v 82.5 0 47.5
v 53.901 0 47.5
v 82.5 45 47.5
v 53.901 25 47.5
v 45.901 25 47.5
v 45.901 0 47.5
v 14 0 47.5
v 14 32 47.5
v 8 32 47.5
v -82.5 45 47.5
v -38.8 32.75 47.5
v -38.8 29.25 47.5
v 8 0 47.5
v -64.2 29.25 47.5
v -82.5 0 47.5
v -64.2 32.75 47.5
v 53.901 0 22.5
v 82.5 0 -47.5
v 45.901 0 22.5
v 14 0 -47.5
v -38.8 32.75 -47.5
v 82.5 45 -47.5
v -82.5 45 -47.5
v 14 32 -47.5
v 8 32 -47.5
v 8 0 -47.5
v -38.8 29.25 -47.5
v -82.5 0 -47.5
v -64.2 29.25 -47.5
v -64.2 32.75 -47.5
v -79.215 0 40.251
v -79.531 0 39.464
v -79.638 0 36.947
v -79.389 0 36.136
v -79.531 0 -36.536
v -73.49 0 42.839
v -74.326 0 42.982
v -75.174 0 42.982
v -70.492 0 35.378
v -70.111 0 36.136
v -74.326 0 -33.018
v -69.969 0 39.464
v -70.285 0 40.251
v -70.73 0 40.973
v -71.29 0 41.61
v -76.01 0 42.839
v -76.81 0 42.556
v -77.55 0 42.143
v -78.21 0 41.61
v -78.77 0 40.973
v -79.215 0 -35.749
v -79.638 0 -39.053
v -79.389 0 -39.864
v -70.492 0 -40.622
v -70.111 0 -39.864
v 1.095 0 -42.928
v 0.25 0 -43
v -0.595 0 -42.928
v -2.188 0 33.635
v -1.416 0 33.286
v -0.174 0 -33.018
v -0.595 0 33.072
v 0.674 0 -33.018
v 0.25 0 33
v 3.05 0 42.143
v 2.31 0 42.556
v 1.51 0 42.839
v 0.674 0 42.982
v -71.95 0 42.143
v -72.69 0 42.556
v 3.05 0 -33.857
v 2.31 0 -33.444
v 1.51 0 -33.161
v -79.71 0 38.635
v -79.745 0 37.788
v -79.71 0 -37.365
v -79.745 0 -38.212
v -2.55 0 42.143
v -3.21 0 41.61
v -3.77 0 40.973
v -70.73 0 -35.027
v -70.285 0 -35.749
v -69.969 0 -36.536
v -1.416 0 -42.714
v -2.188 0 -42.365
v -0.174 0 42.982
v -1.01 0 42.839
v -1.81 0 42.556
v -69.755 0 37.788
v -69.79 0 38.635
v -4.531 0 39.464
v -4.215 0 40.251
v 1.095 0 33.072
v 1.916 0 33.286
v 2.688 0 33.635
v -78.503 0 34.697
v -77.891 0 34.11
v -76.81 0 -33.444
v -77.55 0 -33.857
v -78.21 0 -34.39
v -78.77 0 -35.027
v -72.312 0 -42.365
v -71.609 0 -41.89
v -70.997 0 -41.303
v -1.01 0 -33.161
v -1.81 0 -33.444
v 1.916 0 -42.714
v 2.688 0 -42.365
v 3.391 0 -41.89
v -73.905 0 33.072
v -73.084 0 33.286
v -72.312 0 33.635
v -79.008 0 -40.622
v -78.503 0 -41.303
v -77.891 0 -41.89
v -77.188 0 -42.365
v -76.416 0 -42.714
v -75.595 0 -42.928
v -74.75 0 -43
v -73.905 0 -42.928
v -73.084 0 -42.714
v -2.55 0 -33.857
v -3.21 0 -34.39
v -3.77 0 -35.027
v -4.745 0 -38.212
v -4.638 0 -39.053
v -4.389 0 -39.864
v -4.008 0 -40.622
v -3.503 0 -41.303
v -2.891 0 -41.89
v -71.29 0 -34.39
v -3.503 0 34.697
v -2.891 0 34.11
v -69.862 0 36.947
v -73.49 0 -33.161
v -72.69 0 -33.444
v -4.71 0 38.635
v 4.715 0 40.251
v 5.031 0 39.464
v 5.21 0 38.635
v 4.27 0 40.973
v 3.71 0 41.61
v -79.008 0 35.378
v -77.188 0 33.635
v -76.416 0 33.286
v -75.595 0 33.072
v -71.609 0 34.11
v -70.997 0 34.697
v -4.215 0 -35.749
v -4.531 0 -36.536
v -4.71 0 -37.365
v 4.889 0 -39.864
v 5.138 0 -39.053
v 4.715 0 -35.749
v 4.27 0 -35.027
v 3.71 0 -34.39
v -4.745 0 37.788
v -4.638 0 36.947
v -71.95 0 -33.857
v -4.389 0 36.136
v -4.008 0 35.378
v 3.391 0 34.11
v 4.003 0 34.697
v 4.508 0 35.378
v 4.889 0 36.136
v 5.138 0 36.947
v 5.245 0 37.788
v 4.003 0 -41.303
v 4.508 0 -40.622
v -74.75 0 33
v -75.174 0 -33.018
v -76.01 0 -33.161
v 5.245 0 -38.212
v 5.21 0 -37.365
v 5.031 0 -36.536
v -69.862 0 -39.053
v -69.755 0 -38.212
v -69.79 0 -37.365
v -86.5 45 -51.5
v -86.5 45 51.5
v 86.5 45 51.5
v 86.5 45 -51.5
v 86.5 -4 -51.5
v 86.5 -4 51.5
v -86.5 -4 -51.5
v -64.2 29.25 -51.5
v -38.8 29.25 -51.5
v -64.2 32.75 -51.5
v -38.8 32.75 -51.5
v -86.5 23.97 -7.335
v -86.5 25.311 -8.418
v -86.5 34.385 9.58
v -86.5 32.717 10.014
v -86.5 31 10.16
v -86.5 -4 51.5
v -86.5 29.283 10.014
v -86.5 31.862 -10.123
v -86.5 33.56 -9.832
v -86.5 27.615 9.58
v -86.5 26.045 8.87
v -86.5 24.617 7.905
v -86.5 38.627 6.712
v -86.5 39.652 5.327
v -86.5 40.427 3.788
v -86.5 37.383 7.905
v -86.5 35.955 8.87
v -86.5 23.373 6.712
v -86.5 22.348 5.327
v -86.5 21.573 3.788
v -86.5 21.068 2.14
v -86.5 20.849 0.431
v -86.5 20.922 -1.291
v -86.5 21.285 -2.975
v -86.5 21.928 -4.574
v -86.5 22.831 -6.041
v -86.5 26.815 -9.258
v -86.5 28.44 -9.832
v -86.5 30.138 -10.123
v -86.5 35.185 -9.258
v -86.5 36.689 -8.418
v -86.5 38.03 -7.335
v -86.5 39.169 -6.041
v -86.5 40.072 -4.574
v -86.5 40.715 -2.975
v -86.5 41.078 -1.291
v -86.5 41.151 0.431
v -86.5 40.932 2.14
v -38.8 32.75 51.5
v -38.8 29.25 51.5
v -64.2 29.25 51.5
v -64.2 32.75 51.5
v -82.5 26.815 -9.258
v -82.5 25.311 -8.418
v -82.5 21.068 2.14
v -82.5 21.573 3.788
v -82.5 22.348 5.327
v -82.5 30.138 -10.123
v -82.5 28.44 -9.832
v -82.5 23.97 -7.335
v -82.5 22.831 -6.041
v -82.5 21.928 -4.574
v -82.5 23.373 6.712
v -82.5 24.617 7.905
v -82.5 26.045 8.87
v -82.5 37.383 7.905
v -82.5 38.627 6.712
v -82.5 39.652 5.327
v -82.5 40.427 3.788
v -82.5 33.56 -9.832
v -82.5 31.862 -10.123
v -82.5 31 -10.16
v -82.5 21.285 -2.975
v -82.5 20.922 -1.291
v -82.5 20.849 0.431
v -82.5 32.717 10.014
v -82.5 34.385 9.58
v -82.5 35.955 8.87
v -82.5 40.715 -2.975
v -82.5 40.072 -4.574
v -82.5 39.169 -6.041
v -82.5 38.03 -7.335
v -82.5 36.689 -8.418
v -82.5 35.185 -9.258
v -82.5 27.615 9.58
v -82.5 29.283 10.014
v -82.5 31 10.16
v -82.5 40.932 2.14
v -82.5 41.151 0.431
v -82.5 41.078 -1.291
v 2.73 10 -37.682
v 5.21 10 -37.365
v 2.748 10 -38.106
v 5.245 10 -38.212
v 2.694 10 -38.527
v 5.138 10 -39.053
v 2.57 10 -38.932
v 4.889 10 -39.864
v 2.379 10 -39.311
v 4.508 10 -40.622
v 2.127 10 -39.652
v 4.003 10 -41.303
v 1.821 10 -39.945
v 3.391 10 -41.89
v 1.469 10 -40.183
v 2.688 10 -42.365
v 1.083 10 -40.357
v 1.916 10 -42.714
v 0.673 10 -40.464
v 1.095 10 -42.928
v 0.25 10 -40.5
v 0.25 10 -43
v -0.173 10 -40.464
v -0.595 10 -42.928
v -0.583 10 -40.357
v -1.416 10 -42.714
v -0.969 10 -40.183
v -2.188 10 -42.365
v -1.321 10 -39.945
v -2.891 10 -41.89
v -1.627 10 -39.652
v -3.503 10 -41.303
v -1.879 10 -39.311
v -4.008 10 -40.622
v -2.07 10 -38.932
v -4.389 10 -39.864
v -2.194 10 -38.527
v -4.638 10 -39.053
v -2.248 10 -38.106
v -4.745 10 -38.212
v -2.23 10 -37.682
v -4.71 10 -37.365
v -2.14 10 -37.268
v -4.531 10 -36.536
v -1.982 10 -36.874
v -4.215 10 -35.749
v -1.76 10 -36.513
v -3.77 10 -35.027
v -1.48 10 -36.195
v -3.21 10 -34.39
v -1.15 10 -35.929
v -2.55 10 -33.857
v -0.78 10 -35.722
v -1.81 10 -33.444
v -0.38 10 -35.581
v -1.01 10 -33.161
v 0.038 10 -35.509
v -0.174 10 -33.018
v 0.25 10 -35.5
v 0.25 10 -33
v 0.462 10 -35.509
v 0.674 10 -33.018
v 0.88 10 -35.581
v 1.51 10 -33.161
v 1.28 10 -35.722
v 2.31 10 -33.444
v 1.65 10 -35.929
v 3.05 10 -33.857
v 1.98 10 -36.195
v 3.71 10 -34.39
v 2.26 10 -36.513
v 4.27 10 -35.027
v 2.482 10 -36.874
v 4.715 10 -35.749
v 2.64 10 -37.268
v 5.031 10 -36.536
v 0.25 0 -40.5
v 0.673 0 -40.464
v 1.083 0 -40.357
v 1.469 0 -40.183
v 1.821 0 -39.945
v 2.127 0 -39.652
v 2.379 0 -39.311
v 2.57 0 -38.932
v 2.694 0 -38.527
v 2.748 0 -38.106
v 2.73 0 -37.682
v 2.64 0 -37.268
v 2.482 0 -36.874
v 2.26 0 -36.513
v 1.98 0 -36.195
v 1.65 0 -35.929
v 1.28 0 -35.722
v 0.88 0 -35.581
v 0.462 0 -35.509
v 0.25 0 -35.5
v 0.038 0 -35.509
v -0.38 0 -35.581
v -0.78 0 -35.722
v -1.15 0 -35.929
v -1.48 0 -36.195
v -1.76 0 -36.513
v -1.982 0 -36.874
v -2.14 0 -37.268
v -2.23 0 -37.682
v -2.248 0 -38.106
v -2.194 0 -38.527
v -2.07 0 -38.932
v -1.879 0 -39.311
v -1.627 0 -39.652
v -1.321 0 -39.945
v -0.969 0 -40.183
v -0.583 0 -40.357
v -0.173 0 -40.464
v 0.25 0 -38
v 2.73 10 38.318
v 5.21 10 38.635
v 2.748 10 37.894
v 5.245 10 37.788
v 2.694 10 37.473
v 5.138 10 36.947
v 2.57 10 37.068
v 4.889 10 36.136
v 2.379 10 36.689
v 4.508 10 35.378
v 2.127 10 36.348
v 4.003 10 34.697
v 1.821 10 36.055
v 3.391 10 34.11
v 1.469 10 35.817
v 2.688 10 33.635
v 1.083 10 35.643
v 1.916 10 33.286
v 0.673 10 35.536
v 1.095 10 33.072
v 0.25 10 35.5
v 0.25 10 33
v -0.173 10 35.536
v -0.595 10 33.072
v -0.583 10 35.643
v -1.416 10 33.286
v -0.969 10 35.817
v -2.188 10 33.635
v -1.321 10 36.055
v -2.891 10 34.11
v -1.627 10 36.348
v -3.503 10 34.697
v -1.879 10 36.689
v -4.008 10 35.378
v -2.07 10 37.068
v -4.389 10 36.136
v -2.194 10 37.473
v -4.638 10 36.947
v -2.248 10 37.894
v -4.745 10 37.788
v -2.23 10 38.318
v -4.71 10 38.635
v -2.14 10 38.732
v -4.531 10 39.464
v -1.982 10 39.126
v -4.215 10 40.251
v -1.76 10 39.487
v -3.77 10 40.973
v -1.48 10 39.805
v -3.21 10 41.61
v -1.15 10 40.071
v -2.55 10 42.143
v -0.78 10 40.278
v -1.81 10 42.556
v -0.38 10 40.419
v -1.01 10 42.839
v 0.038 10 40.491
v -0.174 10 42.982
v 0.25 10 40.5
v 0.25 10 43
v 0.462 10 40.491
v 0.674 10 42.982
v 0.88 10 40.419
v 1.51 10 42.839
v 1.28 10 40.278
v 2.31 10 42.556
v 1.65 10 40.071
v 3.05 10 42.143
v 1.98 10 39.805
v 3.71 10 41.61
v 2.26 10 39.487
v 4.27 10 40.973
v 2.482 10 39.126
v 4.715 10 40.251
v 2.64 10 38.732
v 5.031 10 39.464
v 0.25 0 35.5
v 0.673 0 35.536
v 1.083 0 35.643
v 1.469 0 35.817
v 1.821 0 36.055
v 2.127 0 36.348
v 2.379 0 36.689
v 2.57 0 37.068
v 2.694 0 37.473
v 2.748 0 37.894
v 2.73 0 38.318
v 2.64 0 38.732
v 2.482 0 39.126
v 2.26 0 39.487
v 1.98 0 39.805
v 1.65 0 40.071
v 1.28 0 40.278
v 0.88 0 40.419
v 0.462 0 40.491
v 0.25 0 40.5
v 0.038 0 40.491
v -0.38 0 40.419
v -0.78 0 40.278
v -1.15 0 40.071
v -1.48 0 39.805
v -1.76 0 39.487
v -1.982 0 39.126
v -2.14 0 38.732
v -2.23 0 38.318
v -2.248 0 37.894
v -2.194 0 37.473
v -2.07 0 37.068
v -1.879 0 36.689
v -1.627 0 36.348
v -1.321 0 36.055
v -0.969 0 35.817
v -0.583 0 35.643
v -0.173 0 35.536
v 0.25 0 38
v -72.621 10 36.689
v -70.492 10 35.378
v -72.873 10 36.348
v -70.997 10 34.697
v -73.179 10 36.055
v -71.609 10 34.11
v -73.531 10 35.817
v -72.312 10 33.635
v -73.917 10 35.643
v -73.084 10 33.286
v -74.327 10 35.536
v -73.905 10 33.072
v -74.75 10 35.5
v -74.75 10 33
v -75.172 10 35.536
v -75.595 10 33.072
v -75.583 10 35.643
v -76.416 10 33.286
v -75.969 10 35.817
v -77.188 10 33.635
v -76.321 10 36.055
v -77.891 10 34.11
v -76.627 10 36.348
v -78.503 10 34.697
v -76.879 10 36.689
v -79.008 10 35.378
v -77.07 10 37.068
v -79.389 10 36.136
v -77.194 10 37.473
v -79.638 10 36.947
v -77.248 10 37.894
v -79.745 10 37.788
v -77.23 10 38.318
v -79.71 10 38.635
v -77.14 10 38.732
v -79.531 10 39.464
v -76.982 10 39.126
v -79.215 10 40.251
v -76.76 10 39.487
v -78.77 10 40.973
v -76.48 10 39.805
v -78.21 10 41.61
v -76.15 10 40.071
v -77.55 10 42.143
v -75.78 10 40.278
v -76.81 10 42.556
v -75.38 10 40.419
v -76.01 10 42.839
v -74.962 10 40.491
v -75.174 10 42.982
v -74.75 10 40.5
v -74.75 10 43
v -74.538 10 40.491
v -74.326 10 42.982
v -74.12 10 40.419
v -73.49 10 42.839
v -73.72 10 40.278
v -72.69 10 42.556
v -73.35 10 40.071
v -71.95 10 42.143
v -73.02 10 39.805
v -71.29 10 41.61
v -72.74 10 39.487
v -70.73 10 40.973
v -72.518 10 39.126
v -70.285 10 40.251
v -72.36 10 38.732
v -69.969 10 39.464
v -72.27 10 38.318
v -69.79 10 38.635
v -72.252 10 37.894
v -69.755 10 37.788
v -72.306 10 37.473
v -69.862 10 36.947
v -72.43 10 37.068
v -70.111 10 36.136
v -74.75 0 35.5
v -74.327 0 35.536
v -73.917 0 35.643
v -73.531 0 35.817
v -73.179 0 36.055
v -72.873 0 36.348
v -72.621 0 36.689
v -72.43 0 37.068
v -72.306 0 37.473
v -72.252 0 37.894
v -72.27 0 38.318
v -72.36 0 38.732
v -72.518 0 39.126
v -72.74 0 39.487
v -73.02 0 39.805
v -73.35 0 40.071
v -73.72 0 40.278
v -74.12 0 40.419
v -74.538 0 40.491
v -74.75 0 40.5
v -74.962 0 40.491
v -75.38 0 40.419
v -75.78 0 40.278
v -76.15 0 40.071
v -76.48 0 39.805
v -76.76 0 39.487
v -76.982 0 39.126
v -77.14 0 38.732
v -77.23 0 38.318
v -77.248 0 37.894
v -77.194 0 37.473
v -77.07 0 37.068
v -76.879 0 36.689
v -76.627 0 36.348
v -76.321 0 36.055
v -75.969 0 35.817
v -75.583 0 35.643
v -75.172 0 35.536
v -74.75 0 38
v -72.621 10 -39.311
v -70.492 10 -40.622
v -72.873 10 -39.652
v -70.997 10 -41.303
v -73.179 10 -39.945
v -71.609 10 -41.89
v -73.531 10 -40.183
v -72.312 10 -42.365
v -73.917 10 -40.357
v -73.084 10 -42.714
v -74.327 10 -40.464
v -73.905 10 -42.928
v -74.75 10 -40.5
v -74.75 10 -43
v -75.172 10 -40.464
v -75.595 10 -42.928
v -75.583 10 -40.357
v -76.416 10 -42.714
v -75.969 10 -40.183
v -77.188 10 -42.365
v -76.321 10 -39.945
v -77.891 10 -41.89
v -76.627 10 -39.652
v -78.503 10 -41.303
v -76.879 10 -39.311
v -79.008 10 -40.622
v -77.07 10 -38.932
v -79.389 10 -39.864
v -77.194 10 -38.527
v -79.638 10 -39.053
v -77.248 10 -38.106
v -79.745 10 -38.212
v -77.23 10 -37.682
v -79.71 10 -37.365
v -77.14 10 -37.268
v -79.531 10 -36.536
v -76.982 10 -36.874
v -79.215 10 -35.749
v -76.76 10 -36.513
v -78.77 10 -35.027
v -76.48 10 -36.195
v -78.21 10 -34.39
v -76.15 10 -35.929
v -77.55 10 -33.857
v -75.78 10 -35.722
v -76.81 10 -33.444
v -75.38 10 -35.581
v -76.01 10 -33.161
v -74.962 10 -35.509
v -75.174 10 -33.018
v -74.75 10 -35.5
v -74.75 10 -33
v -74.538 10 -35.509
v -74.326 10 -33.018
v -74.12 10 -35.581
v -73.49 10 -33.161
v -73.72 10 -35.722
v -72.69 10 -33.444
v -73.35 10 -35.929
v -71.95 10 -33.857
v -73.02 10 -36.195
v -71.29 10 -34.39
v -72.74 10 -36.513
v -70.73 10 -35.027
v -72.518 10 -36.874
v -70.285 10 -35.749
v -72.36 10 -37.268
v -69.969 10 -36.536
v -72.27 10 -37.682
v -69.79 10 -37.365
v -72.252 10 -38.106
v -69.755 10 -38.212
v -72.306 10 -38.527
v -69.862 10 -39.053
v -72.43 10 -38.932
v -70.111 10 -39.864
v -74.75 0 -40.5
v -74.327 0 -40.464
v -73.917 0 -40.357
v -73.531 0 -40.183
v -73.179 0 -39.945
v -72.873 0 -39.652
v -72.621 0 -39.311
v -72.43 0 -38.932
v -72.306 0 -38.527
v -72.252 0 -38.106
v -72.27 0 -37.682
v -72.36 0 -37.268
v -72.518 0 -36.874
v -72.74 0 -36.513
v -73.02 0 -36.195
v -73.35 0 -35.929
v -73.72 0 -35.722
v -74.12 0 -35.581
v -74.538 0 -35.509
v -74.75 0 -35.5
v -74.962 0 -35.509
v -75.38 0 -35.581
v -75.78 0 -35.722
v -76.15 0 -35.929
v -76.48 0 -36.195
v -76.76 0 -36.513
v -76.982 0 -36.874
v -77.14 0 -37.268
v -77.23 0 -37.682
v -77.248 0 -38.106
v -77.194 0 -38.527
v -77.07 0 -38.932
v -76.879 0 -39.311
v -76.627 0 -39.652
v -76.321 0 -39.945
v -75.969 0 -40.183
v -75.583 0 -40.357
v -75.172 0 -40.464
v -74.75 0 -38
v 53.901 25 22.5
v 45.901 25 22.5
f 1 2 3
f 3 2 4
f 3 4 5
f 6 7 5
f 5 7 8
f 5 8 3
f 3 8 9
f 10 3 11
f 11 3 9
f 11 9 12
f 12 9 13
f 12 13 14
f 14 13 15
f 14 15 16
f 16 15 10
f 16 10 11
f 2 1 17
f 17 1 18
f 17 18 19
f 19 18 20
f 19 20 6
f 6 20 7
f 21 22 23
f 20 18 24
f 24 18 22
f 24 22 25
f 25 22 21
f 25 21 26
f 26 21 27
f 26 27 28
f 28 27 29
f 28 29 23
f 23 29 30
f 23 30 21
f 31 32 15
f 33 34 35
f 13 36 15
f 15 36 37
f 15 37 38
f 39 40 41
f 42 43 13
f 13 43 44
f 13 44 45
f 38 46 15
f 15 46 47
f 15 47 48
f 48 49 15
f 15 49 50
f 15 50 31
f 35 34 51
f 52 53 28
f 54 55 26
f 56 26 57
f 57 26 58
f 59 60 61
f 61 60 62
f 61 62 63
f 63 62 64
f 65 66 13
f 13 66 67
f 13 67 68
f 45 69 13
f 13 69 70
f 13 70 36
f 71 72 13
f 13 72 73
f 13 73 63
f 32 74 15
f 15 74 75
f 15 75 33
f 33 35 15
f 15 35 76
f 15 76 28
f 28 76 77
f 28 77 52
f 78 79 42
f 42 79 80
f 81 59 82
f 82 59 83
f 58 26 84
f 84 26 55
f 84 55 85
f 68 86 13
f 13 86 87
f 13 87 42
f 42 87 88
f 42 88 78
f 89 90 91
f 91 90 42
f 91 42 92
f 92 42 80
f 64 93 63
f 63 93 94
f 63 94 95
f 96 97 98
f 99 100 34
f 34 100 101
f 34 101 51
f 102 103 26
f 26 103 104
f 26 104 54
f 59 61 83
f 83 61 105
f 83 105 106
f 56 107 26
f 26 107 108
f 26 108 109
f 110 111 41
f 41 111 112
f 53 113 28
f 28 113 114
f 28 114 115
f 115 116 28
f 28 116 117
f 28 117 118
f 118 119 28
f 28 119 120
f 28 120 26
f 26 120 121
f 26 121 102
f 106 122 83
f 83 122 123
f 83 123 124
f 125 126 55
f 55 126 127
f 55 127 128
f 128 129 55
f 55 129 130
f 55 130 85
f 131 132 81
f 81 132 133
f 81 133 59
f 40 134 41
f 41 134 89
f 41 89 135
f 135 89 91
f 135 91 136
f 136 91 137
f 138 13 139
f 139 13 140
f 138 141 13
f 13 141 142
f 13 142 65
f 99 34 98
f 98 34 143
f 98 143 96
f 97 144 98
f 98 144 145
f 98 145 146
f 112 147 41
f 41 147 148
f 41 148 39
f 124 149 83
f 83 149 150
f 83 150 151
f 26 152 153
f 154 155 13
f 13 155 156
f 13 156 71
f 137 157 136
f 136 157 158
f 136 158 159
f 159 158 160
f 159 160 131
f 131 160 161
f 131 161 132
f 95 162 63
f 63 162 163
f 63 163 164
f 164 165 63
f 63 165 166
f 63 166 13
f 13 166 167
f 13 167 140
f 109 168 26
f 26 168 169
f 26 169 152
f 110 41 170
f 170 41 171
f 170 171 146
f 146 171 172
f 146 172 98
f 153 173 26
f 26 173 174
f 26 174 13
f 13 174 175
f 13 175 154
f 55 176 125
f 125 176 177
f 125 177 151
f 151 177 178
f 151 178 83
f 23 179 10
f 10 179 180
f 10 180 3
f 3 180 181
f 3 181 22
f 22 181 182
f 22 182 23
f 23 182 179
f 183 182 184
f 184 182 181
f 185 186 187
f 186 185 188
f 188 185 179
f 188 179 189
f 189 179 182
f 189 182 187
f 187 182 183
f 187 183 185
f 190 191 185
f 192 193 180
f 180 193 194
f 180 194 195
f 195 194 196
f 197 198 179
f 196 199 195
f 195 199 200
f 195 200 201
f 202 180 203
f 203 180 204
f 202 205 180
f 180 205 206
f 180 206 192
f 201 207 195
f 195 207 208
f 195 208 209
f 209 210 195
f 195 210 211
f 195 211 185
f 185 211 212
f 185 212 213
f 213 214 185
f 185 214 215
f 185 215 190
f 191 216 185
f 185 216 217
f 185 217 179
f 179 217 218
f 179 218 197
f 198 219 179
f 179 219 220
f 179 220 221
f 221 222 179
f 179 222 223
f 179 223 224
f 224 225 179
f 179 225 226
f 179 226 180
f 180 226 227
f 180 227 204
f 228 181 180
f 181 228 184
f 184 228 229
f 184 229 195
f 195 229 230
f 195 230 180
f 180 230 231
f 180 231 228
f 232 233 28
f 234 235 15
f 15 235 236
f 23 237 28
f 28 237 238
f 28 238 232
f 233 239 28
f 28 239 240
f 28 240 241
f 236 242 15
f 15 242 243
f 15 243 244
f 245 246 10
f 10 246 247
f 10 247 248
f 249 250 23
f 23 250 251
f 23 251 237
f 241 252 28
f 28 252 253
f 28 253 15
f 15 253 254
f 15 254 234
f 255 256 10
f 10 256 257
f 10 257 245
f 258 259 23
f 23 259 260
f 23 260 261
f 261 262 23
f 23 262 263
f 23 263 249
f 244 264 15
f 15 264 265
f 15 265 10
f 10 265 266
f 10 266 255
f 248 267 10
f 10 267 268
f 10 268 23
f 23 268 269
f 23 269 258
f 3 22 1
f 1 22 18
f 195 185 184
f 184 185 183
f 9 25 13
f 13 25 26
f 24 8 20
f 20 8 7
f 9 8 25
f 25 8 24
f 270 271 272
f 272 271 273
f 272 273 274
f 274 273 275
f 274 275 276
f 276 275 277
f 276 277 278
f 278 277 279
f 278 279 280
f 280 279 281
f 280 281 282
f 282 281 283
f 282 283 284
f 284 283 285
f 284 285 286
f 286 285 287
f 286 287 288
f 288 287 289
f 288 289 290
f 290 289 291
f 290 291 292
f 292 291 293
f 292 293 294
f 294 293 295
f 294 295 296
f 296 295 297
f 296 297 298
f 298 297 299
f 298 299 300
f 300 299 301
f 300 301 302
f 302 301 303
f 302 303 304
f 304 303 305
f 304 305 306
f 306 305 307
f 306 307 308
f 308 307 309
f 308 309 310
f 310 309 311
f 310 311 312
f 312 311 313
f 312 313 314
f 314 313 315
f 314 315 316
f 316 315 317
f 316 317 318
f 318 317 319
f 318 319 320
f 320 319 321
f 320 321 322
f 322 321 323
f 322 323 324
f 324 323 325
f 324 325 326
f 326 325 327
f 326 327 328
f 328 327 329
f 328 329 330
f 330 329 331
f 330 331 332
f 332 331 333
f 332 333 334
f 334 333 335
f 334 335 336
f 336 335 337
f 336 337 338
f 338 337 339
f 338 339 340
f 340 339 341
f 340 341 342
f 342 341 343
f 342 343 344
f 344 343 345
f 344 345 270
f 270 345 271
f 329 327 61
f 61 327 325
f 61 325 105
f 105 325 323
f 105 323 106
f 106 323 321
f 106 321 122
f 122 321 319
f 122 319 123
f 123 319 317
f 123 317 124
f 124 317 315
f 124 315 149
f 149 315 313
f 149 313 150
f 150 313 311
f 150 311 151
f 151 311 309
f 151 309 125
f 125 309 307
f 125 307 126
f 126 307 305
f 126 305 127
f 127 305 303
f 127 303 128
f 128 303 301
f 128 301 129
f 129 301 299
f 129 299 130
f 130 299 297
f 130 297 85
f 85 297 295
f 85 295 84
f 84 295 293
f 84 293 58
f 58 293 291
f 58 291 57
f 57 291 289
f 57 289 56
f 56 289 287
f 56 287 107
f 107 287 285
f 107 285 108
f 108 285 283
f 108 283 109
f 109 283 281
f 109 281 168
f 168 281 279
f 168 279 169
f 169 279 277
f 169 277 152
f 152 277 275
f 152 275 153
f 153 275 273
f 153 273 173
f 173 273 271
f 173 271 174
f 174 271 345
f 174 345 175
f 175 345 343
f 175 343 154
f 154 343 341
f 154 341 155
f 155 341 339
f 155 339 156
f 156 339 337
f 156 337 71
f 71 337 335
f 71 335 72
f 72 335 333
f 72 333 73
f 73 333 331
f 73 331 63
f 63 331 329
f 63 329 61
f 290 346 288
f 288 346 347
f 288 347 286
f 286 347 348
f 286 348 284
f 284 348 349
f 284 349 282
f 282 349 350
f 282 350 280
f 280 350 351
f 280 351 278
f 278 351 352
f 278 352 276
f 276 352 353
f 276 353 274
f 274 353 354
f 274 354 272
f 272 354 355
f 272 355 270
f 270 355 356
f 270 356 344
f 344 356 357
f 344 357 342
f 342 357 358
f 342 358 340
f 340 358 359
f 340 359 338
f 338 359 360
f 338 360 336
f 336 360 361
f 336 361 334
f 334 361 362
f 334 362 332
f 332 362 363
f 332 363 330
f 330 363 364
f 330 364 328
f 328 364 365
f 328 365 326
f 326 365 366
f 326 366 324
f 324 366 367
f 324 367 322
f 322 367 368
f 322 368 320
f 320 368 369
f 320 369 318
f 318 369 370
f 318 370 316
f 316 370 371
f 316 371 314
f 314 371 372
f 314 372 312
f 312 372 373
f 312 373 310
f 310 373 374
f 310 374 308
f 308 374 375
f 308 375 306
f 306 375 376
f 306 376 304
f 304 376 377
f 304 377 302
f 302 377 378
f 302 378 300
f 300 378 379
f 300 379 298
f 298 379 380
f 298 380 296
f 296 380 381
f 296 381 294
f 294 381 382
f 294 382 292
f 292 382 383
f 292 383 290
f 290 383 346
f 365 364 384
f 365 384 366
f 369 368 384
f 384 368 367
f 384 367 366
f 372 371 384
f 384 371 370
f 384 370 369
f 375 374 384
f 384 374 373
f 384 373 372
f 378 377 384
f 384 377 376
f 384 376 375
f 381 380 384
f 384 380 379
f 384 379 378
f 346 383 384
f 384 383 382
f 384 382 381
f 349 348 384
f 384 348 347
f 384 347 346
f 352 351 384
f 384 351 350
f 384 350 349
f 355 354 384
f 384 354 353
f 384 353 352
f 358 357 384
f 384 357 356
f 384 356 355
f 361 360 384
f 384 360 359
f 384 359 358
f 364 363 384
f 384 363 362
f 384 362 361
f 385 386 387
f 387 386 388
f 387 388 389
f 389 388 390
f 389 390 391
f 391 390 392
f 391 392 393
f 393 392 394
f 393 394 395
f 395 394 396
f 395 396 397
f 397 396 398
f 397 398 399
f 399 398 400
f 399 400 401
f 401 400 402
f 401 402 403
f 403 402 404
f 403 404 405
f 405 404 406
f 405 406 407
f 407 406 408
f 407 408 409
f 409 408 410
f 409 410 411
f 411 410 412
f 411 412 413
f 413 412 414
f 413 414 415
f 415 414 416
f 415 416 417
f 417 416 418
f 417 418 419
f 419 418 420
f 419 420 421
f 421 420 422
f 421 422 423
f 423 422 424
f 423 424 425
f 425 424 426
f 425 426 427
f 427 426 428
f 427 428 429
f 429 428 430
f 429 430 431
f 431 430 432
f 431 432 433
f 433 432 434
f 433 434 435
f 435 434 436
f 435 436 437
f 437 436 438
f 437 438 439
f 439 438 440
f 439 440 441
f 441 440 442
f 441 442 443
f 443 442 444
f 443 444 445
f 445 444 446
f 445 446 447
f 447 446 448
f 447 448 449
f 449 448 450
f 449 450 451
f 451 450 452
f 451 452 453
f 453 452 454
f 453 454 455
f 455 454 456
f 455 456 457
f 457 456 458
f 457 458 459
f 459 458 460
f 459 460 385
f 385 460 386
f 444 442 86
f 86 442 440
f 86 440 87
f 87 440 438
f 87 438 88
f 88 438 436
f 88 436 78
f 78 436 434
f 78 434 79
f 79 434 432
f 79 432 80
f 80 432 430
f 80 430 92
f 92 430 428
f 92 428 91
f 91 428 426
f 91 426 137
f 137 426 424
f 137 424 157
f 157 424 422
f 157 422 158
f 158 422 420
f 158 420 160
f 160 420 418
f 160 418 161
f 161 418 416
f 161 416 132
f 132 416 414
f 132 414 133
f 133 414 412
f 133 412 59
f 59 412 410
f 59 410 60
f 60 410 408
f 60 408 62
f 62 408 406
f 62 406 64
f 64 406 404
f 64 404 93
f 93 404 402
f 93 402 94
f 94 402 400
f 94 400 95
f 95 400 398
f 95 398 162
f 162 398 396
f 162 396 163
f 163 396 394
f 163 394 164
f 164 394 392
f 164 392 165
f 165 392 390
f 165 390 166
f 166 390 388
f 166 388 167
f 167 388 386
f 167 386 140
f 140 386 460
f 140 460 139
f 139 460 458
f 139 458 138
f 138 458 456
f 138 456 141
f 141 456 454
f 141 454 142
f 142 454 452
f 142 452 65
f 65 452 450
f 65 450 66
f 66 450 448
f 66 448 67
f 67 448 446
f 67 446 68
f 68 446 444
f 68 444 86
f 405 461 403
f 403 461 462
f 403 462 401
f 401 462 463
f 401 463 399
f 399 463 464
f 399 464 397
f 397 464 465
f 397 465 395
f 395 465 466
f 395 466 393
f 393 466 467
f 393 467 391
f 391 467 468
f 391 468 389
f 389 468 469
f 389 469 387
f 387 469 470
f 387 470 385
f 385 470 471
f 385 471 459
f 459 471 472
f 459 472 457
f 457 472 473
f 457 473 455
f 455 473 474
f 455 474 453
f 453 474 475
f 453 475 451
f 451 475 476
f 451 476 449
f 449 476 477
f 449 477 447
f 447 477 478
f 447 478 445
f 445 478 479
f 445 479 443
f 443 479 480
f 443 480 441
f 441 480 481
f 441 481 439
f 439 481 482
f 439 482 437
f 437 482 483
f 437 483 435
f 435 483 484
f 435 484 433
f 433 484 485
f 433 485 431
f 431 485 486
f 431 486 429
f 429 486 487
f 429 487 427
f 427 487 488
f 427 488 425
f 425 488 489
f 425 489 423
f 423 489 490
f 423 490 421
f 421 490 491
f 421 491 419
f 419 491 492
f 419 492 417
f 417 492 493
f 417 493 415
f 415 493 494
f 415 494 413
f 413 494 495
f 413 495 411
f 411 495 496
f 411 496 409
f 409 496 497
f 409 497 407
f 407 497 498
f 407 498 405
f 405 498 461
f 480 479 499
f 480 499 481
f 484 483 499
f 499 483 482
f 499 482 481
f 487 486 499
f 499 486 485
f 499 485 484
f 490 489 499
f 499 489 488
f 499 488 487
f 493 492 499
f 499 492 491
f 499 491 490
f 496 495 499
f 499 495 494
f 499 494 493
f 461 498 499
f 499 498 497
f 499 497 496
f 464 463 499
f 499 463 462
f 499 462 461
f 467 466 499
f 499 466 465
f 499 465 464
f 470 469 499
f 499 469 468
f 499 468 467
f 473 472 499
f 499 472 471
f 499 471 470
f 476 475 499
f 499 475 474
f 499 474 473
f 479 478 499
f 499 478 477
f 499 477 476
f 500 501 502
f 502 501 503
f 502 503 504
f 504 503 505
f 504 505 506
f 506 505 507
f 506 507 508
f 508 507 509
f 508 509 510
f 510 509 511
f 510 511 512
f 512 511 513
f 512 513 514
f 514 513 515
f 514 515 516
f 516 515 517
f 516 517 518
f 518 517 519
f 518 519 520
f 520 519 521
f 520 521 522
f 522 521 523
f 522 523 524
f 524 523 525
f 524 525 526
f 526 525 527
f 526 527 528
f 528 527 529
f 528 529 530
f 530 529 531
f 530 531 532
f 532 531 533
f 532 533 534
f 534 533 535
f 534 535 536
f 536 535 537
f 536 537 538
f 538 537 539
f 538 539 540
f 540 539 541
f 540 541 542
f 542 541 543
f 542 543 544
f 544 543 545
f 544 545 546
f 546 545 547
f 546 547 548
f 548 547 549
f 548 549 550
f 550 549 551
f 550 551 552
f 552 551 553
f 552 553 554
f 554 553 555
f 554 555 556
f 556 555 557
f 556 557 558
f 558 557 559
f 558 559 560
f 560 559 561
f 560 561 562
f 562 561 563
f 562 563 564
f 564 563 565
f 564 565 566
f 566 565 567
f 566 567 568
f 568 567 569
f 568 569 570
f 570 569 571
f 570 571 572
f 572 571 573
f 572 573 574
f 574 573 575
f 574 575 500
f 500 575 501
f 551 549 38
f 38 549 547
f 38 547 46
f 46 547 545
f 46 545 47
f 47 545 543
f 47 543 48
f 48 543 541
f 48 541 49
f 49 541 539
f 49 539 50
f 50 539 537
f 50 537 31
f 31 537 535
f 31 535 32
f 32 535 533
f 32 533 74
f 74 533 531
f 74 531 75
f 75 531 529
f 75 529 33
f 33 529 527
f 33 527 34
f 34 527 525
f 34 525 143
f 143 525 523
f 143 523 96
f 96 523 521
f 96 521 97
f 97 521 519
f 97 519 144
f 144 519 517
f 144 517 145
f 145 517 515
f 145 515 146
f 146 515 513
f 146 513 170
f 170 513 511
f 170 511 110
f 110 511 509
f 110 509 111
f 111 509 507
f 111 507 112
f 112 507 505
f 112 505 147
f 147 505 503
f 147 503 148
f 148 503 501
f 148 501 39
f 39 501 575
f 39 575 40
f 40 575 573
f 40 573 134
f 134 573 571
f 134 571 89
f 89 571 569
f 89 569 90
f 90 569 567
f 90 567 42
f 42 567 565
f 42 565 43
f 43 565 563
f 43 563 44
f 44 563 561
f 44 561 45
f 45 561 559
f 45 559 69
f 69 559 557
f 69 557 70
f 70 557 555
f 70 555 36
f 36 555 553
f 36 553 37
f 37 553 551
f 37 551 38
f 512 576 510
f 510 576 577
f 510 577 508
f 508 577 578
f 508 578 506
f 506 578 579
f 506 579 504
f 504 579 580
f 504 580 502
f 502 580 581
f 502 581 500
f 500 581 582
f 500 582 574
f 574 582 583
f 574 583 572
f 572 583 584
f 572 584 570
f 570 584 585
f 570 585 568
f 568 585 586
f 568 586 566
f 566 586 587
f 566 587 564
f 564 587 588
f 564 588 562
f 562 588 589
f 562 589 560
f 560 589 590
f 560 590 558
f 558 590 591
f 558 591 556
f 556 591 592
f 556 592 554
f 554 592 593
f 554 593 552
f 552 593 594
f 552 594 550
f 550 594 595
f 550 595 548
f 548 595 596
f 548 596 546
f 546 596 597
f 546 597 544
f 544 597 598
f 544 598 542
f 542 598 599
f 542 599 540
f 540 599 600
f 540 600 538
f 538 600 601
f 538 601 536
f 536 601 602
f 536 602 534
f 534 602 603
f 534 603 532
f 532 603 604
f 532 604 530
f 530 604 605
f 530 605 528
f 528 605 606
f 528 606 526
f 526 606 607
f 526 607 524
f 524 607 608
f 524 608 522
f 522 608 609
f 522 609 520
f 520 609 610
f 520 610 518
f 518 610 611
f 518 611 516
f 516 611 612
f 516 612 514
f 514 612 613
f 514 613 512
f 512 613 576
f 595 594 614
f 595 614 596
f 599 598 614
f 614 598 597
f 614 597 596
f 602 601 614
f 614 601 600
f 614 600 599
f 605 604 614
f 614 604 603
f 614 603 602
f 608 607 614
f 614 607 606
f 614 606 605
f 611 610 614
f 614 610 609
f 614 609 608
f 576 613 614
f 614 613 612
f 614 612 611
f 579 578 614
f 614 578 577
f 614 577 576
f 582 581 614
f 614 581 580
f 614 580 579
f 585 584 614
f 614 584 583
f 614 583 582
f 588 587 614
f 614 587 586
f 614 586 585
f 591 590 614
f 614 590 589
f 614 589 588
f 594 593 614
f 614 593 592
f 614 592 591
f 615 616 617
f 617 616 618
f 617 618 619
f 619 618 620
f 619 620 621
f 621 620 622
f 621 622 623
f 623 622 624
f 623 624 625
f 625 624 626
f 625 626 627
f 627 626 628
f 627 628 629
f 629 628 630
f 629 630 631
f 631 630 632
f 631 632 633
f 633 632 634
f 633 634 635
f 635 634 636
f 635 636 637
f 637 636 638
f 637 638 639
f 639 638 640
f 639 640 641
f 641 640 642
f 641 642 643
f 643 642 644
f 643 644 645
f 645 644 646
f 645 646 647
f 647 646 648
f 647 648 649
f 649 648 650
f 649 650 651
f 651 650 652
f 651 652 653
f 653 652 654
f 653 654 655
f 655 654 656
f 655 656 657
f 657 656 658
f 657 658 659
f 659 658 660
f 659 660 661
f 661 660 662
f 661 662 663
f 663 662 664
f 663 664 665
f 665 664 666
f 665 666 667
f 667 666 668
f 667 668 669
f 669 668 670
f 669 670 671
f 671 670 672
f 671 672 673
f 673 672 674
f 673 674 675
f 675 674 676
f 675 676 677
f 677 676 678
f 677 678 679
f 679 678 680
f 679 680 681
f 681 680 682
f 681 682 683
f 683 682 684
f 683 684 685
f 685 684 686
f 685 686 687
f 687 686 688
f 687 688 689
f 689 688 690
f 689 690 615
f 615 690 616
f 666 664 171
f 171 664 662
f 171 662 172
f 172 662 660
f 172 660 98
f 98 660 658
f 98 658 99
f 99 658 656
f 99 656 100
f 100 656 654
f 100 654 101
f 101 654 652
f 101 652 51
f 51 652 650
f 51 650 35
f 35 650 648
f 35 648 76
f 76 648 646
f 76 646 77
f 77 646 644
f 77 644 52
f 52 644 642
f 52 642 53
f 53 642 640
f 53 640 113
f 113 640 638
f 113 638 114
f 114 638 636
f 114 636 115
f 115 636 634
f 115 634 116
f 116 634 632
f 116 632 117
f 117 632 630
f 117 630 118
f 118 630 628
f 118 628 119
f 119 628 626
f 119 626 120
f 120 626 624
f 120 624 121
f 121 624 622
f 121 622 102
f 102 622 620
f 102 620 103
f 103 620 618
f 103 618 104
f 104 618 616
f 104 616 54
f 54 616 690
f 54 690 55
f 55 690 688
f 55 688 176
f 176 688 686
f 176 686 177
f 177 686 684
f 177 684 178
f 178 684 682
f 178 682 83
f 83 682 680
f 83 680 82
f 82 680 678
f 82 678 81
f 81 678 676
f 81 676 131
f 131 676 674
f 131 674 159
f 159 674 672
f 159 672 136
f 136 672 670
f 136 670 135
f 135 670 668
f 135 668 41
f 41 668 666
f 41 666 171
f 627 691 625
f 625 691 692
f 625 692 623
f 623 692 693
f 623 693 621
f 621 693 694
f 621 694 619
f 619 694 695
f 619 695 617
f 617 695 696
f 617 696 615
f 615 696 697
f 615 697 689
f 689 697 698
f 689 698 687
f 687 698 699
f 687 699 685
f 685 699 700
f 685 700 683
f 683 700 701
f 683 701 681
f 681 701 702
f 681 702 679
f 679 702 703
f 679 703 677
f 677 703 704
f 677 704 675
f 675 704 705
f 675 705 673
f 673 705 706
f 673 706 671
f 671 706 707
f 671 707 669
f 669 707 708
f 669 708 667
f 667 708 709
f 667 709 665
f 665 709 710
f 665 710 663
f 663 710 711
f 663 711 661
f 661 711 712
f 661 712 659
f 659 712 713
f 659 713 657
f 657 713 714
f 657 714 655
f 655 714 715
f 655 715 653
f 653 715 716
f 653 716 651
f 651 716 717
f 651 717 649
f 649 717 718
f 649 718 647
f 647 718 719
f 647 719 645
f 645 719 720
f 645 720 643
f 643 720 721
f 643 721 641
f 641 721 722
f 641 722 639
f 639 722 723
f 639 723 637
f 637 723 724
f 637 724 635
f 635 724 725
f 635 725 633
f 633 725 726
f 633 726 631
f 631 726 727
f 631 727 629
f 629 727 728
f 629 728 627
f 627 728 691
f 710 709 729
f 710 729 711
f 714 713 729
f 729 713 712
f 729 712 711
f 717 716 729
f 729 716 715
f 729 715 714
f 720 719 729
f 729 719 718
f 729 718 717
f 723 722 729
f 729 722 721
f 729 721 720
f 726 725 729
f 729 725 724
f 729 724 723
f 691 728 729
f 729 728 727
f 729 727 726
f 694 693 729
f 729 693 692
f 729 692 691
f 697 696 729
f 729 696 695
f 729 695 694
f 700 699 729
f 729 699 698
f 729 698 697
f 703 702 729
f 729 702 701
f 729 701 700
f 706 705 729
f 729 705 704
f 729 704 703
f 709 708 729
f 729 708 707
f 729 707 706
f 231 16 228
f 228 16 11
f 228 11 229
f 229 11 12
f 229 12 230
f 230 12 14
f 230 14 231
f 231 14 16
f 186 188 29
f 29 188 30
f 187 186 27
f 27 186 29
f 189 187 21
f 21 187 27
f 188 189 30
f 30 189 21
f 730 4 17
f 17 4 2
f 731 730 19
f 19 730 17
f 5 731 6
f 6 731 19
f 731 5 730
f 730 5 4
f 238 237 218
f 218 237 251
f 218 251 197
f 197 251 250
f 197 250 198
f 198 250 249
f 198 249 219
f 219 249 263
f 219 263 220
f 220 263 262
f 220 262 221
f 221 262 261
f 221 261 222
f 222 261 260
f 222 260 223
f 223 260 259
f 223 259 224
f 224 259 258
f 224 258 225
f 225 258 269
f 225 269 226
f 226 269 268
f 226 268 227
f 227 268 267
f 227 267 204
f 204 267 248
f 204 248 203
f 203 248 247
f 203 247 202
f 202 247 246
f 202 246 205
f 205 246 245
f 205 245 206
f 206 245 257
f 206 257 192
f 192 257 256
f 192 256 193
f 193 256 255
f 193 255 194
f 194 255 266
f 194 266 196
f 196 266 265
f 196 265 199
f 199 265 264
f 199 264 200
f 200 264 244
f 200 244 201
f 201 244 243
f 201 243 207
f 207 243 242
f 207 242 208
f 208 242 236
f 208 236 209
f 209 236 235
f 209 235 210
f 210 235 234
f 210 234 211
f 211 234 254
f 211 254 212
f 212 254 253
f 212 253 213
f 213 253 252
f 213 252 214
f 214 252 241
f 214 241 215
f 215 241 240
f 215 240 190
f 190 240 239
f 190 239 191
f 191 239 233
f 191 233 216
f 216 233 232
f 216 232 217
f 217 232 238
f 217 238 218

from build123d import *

# Parameters (mm, degrees)
SKETCH1_W             = 173
SKETCH1_H             = 103
SKETCH1_W_2           = 165
SKETCH1_H_2           = 95
BOSS_EXTRUDE1_DEPTH   = 45
SKETCH1_3_W           = 173
SKETCH1_3_H           = 103
BOSS_EXTRUDE2_DEPTH   = 4
SKETCH5_W             = 6
SKETCH5_H             = 95
BOSS_EXTRUDE3_DEPTH   = 32
SKETCH6_R             = 5
SKETCH6_R_2           = 2.5
STANDOFFINSERTS_DEPTH = 10
SKETCH7_W             = 25.4
SKETCH7_H             = 3.5
CUT_EXTRUDE1_DEPTH    = 142.831766541
SKETCH8_W             = 8
SKETCH8_H             = 25
BOSS_EXTRUDE5_DEPTH   = 25
SKETCH9_R             = 10.16
CUT_EXTRUDE2_DEPTH    = 10


with BuildPart() as part:
    # Sketch1 → Boss-Extrude1 (new body)
    with BuildSketch(Plane(origin=(0, 0, 0), x_dir=(1, 0, 0), z_dir=(0, 1, 0))):
        Rectangle(SKETCH1_W, SKETCH1_H)
        Rectangle(SKETCH1_W_2, SKETCH1_H_2, mode=Mode.SUBTRACT)
    extrude(amount=BOSS_EXTRUDE1_DEPTH)

    # Sketch1<3> → Boss-Extrude2 (add)
    with BuildSketch(Plane(origin=(0, 0, 0), x_dir=(1, 0, 0), z_dir=(0, 1, 0))):
        Rectangle(SKETCH1_3_W, SKETCH1_3_H)
    extrude(amount=-BOSS_EXTRUDE2_DEPTH)

    # Sketch5 → Boss-Extrude3 (add)
    with BuildSketch(Plane(origin=(0, 0, 0), x_dir=(1, 0, 0), z_dir=(0, 1, 0))):
        with Locations((11, 0)):
            Rectangle(SKETCH5_W, SKETCH5_H)
    extrude(amount=BOSS_EXTRUDE3_DEPTH)

    # Sketch6 → StandoffInserts (add)
    # profile 1 of 4: a face of its own
    with BuildSketch(Plane(origin=(0, 0, 0), x_dir=(1, 0, 0), z_dir=(0, 1, 0))):
        with Locations((-74.75, -38)):
            Circle(SKETCH6_R)
        with Locations((-74.75, -38)):
            Circle(SKETCH6_R_2, mode=Mode.SUBTRACT)
    # profile 2 of 4: a face of its own
    with BuildSketch(Plane(origin=(0, 0, 0), x_dir=(1, 0, 0), z_dir=(0, 1, 0))):
        with Locations((0.25, -38)):
            Circle(SKETCH6_R)
        with Locations((0.25, -38)):
            Circle(SKETCH6_R_2, mode=Mode.SUBTRACT)
    # profile 3 of 4: a face of its own
    with BuildSketch(Plane(origin=(0, 0, 0), x_dir=(1, 0, 0), z_dir=(0, 1, 0))):
        with Locations((-74.75, 38)):
            Circle(SKETCH6_R)
        with Locations((-74.75, 38)):
            Circle(SKETCH6_R_2, mode=Mode.SUBTRACT)
    # profile 4 of 4: a face of its own
    with BuildSketch(Plane(origin=(0, 0, 0), x_dir=(1, 0, 0), z_dir=(0, 1, 0))):
        with Locations((0.25, 38)):
            Circle(SKETCH6_R)
        with Locations((0.25, 38)):
            Circle(SKETCH6_R_2, mode=Mode.SUBTRACT)
    extrude(amount=STANDOFFINSERTS_DEPTH)

    # Sketch7 → Cut-Extrude1 (cut, through all)
    with BuildSketch(Plane(origin=(0, 0, -51.5), x_dir=(-1, 0, 0), z_dir=(0, 0, -1))):
        with Locations((51.5, 31)):
            Rectangle(SKETCH7_W, SKETCH7_H)
    extrude(amount=-CUT_EXTRUDE1_DEPTH, mode=Mode.SUBTRACT)

    # Sketch8 → Boss-Extrude5 (add)
    with BuildSketch(Plane(origin=(0, 0, 0), x_dir=(1, 0, 0), z_dir=(0, 1, 0))):
        with Locations((49.90120524, -35)):
            Rectangle(SKETCH8_W, SKETCH8_H)
    extrude(amount=BOSS_EXTRUDE5_DEPTH)

    # Sketch9 → Cut-Extrude2 (cut)
    with BuildSketch(Plane.ZY.offset(86.5)):
        with Locations((0, 31)):
            Circle(SKETCH9_R)
    extrude(amount=-CUT_EXTRUDE2_DEPTH, mode=Mode.SUBTRACT)


solid = part.part
